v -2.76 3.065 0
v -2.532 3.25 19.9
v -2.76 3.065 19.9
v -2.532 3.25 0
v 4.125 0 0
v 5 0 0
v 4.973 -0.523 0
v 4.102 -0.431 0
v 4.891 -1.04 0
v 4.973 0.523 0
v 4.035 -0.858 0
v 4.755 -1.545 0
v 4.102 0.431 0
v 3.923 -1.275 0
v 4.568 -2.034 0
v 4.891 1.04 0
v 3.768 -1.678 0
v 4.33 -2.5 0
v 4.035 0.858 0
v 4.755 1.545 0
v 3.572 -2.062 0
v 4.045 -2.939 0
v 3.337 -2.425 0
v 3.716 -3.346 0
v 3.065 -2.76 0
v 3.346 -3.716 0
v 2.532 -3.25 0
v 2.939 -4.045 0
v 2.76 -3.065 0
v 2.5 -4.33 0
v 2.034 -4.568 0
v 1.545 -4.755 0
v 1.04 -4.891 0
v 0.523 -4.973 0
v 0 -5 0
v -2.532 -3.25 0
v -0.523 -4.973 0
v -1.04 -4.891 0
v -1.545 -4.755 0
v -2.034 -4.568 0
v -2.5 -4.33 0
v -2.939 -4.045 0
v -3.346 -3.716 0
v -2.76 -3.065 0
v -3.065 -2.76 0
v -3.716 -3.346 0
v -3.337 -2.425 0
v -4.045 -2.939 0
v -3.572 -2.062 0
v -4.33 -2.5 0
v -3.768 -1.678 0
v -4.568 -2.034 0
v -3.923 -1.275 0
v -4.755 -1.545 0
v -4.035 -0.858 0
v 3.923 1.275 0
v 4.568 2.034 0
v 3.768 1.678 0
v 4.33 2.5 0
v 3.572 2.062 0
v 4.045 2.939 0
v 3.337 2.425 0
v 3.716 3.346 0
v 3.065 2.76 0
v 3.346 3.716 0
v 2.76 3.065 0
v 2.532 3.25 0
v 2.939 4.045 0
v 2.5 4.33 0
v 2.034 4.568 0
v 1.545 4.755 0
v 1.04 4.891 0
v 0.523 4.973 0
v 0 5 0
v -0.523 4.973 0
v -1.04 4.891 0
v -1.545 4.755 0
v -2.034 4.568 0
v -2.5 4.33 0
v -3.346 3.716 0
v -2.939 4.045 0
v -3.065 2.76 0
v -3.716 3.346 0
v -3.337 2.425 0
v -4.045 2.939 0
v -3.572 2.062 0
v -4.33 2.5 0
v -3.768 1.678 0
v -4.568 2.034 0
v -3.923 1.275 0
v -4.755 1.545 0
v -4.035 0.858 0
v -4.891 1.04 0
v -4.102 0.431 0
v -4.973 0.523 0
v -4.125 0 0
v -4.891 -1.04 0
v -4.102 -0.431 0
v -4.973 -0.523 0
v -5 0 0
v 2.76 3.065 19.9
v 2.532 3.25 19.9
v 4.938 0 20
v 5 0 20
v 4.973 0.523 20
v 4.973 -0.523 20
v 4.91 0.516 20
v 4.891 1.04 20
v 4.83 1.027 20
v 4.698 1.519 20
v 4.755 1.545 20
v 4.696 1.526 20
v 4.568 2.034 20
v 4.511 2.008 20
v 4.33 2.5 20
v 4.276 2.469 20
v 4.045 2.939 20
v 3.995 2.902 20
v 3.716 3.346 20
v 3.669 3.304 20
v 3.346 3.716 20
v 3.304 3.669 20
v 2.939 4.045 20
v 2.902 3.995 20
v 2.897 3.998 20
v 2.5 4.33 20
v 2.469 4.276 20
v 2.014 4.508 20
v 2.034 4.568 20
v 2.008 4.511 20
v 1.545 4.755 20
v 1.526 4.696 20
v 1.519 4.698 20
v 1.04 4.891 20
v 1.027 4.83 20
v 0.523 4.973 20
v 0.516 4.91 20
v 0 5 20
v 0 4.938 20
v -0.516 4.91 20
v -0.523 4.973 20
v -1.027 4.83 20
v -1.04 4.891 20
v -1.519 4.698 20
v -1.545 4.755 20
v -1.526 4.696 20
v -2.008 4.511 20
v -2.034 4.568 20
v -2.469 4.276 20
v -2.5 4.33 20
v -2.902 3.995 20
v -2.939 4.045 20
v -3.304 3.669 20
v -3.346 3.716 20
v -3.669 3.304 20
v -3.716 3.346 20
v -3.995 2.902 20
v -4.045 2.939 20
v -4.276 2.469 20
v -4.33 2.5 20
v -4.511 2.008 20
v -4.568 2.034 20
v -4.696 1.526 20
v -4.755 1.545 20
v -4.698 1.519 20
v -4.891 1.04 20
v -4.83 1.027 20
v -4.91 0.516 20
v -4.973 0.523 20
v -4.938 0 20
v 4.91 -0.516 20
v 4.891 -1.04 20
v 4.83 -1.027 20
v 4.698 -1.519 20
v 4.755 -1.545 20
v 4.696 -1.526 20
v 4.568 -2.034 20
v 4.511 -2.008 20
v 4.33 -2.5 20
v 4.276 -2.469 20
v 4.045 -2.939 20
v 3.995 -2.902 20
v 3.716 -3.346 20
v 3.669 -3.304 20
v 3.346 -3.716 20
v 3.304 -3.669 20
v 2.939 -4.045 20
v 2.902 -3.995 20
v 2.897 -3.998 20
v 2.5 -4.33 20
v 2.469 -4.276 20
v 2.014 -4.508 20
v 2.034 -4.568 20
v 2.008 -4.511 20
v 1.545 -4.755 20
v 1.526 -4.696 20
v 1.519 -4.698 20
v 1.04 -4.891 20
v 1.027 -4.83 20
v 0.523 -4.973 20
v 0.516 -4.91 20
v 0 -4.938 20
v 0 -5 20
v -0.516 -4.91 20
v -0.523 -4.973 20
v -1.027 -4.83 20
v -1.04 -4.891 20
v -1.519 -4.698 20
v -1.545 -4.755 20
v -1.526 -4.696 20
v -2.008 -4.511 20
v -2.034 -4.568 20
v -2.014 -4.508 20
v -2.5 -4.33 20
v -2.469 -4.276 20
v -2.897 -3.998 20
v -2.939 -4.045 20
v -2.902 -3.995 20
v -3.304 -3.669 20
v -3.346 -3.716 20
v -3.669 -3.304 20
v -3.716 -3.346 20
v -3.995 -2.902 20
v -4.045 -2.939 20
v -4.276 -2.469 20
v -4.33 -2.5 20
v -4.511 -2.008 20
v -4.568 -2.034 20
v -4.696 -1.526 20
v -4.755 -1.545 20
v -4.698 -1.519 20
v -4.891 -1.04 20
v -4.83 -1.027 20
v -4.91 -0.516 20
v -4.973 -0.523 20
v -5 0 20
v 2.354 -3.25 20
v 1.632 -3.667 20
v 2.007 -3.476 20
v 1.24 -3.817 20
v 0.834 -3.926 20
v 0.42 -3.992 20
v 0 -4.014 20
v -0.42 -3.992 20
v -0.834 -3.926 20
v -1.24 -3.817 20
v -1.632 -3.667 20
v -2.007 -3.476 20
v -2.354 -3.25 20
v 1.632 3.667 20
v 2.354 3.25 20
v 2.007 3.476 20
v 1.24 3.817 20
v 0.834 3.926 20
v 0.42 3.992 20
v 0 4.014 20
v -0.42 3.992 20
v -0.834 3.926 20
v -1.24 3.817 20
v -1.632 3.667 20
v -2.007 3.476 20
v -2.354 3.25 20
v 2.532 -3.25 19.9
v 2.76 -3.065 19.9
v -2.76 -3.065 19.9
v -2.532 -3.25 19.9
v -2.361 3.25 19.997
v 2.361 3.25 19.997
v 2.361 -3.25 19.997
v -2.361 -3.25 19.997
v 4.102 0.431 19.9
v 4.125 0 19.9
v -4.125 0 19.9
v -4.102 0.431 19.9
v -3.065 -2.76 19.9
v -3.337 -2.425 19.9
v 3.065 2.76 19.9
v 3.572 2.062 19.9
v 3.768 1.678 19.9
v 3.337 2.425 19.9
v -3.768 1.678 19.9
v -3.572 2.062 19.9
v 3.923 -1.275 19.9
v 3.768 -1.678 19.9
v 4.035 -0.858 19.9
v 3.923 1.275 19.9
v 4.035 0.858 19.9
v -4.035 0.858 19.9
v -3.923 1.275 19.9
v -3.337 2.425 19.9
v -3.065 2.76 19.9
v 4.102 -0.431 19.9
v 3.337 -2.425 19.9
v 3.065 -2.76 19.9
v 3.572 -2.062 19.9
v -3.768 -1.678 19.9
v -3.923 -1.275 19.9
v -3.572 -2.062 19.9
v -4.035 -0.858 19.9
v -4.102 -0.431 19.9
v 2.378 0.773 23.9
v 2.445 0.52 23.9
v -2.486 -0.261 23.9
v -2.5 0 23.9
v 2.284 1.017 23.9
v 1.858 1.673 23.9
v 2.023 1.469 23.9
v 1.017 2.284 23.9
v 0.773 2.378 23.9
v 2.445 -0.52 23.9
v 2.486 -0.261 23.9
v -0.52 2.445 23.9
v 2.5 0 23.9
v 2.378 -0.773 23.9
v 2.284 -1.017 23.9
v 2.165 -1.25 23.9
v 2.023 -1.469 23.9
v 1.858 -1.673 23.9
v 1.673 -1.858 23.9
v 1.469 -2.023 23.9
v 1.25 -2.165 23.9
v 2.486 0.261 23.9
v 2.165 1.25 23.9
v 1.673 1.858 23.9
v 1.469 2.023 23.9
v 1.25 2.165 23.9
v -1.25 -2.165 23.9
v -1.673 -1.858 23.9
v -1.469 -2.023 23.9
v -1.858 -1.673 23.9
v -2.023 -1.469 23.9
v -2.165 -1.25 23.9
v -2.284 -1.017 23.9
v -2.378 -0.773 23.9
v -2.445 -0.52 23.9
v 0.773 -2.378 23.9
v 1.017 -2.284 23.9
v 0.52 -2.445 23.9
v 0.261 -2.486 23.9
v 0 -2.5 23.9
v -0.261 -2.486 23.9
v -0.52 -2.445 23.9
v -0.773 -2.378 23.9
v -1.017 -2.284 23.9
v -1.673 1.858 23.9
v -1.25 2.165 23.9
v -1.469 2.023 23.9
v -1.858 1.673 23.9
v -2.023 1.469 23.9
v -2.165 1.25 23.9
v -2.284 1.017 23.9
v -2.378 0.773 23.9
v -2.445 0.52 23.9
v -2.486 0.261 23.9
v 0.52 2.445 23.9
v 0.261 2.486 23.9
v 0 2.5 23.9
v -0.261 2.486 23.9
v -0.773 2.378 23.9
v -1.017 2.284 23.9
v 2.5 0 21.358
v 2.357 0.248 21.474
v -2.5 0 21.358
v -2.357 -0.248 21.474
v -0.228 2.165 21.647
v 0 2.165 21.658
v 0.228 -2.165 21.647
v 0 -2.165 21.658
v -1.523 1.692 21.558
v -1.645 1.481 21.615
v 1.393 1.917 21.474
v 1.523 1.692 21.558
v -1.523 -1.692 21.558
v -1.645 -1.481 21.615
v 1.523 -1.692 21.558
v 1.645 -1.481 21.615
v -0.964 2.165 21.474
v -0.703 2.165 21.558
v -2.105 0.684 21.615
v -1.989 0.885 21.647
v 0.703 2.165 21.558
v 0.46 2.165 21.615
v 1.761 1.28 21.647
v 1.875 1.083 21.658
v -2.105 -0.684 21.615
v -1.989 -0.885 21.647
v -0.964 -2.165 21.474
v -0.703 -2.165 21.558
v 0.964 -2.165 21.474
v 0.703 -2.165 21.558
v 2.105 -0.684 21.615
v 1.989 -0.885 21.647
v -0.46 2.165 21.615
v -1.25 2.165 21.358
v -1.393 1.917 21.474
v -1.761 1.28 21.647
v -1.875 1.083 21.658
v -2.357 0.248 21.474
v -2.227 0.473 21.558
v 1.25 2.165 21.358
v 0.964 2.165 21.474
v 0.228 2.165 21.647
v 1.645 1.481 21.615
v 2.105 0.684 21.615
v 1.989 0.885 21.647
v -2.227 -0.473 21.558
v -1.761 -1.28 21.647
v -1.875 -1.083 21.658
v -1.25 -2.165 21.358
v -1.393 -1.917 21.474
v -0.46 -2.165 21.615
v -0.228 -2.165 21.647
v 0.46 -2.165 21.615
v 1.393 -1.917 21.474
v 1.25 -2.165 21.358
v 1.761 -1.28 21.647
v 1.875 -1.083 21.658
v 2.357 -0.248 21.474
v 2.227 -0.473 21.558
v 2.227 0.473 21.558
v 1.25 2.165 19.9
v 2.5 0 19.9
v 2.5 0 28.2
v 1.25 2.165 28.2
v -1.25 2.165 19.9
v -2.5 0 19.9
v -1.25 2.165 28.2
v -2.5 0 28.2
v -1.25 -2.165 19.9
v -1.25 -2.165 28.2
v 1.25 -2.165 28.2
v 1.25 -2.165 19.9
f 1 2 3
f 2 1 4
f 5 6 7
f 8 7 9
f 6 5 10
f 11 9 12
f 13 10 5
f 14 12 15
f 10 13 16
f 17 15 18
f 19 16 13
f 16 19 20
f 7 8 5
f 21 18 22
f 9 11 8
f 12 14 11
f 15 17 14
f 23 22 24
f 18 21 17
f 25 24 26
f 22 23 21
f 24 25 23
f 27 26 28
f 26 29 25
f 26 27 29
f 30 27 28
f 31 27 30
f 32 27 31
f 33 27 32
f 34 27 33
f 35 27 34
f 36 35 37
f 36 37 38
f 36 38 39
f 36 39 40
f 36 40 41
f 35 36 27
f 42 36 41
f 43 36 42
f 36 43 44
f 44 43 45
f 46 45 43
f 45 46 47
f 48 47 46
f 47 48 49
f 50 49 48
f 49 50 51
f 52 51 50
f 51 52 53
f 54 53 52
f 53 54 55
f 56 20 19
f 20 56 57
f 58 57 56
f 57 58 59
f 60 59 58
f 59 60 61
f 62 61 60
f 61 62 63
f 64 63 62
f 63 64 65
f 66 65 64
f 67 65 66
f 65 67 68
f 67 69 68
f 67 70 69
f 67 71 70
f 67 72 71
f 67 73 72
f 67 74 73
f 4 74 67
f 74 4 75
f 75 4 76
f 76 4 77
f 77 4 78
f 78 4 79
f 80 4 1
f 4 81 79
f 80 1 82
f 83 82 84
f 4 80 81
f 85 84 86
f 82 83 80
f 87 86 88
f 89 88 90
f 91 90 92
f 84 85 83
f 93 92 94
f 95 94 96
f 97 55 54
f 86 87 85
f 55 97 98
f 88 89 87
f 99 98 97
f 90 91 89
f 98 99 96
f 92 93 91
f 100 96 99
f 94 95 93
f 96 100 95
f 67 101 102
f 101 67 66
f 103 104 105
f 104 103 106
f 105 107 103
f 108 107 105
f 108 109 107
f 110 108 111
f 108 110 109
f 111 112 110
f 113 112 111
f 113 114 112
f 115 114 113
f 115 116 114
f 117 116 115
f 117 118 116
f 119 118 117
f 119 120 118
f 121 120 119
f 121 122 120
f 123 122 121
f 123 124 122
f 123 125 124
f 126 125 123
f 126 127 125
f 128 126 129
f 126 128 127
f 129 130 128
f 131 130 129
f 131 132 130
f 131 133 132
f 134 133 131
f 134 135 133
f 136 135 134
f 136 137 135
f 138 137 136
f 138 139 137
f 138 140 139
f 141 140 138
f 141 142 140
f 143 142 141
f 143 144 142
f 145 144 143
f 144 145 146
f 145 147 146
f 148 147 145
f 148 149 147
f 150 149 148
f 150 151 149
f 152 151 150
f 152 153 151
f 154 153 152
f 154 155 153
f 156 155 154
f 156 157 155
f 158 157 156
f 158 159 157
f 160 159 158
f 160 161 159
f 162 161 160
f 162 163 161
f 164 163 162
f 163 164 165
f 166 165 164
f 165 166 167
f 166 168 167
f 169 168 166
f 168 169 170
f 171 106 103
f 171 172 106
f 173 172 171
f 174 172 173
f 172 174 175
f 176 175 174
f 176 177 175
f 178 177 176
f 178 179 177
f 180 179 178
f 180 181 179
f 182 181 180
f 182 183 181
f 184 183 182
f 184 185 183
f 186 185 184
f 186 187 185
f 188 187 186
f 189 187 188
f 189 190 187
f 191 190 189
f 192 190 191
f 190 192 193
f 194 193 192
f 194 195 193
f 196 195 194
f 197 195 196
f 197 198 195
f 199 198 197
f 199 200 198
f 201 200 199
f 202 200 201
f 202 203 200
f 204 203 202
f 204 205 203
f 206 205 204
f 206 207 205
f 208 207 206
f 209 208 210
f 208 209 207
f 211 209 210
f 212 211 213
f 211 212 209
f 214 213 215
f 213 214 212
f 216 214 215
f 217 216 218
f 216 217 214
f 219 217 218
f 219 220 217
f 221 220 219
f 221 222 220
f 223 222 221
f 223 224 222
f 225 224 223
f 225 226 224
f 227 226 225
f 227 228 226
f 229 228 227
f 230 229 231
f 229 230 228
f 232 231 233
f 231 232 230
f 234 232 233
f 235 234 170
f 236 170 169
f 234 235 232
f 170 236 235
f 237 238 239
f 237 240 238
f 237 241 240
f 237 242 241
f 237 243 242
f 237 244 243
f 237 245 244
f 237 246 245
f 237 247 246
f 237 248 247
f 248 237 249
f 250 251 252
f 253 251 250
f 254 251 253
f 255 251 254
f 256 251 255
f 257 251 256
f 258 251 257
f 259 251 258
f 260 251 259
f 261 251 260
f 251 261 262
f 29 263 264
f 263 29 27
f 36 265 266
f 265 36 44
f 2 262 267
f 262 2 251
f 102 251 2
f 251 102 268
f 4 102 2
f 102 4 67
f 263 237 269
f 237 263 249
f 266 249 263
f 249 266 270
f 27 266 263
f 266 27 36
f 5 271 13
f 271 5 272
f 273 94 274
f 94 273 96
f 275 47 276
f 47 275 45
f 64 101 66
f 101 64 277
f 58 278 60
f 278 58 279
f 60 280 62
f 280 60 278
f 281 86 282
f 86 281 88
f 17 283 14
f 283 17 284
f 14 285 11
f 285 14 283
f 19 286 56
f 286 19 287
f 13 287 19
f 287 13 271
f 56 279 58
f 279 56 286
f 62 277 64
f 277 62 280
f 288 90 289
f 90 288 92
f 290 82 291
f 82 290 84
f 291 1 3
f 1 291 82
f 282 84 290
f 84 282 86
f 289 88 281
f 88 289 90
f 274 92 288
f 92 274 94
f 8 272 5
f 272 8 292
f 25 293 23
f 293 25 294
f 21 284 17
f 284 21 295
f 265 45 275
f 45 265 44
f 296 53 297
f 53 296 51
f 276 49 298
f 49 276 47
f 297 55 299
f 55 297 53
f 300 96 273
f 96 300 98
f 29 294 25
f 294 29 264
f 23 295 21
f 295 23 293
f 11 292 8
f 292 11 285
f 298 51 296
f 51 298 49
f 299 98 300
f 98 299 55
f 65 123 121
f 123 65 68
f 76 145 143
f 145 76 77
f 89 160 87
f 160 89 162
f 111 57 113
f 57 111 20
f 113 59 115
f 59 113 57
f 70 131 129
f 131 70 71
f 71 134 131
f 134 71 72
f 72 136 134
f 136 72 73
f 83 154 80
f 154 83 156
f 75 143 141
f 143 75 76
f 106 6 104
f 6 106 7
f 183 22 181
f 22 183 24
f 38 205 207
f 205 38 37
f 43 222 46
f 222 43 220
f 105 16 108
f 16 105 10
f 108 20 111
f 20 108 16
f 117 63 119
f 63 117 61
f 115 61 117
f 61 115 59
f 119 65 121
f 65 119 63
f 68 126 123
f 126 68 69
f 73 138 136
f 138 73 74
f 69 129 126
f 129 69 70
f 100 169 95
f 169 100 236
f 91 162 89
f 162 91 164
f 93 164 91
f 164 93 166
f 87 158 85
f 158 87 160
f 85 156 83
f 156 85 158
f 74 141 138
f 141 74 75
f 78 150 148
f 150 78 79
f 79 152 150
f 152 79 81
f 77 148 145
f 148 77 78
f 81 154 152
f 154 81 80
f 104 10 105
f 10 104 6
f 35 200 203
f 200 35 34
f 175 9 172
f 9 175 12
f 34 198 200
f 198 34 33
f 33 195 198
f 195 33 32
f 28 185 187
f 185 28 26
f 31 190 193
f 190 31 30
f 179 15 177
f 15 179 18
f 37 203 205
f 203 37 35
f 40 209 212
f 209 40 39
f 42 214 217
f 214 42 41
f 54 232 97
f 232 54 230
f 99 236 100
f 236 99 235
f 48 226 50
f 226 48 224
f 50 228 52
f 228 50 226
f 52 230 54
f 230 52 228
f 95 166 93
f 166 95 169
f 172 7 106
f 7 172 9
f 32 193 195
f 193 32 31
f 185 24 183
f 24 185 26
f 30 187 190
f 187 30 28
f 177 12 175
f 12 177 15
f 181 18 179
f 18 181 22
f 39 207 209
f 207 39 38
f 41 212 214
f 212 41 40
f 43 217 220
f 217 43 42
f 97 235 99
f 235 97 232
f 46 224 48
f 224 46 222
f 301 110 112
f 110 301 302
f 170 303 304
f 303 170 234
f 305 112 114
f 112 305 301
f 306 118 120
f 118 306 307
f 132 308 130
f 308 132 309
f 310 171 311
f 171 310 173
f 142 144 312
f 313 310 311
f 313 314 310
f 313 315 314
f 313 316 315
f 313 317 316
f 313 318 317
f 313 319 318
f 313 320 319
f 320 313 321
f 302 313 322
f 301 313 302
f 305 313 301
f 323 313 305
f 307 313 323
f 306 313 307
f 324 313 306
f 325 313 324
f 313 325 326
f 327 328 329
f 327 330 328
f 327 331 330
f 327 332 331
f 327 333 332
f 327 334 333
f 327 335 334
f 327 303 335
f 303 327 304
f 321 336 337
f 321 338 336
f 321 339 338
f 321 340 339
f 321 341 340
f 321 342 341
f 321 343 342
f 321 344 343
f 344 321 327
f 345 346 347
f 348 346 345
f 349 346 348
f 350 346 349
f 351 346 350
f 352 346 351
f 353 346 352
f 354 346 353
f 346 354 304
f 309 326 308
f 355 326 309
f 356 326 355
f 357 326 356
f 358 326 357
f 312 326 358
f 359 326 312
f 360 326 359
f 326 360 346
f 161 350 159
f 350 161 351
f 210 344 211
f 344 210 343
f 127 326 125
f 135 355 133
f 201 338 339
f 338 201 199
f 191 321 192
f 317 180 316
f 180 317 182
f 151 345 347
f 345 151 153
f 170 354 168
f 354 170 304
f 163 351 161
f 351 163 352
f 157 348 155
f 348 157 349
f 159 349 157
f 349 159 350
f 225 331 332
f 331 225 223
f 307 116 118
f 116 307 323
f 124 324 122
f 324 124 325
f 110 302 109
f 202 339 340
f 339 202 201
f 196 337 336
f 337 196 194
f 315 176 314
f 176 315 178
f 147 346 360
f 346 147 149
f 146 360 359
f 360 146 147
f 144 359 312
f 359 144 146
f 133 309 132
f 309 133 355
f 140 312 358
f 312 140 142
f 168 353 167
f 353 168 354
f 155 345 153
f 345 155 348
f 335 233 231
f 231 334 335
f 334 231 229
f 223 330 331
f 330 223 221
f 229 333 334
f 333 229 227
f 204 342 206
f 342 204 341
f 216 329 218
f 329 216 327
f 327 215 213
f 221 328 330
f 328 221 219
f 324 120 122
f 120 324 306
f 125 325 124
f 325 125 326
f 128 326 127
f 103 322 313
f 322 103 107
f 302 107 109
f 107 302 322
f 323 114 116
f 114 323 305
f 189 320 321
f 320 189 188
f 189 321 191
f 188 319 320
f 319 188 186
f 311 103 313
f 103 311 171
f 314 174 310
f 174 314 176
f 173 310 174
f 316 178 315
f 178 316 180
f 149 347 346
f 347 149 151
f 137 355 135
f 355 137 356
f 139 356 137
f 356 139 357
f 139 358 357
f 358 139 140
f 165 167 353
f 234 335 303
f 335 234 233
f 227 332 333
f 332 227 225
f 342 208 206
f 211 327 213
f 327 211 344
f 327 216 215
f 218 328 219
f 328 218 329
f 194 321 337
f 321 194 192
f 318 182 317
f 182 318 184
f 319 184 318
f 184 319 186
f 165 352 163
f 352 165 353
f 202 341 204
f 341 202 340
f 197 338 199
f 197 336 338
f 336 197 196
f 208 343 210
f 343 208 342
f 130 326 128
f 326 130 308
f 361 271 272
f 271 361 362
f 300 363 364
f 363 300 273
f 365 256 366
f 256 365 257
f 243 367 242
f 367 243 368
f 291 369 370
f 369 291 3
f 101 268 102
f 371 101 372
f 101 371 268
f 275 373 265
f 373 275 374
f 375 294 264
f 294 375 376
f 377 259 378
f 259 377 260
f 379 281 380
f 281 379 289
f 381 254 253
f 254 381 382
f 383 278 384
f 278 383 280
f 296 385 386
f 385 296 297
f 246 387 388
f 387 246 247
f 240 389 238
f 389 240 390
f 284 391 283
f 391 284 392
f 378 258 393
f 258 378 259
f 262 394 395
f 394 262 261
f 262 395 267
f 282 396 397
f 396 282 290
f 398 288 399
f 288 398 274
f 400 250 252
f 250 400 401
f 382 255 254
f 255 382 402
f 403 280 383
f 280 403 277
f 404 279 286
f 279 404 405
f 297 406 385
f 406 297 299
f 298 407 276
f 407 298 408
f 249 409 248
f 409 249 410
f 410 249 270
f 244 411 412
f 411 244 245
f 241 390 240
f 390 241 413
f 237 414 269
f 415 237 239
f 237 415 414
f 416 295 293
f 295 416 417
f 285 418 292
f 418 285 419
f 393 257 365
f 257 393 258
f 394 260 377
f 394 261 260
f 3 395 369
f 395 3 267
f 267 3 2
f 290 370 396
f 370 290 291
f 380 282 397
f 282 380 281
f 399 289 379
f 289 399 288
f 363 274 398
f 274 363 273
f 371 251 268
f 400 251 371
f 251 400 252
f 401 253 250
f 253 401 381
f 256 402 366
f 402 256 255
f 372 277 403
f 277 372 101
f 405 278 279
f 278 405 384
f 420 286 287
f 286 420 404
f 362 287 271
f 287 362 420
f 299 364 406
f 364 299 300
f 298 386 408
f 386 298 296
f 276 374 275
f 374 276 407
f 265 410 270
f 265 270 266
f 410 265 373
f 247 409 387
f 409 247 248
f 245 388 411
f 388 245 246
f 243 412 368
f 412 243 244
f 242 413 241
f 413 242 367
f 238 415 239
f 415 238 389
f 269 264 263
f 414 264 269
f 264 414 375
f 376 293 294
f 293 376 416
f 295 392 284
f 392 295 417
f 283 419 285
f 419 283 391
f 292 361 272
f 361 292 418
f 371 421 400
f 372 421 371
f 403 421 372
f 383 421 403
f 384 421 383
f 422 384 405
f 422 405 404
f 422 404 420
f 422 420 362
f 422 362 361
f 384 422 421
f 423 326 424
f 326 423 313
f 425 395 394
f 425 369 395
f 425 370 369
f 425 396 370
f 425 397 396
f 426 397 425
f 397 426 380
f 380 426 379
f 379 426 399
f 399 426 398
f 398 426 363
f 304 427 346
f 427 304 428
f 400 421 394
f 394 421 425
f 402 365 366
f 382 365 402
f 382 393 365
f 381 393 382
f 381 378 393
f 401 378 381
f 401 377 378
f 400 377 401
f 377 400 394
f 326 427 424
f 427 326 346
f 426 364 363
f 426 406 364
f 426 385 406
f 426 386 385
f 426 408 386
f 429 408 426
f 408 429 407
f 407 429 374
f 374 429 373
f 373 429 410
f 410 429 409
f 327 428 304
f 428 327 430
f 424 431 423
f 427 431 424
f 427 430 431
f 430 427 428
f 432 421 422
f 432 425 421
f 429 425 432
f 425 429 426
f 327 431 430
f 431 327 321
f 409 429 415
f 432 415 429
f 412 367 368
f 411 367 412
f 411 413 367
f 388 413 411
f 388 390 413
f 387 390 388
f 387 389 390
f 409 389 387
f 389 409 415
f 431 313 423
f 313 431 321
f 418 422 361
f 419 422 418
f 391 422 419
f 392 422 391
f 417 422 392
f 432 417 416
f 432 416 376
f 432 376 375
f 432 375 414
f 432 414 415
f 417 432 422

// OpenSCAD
// file: ../library_deh/mag_mount.scad
/* mag_mount.scad

 * ****** Stud magnets ******
16 mm 
http://www.kjmagnetics.com/proddetail.asp?prod=MM-C-16
    Dimensions:
        D=16mm (0.63")
        M=4mm (0.16") (M4 Coarse Male threaded stud)
        H=13mm (0.51")
        h=5mm (0.20")
    Material: NdFeB, Grade N38
    Plating/Coating: Ni-Cu-Ni (Nickel)
    Magnetization Direction: Axial (Poles on Flat Ends)
    Weight: 0.26 oz. (7.37 g)
    Pull Force: 12.1 lbs
    Surface Field: N/A
    Brmax: 12,600 Gauss
    BHmax: 38 MGOe
   $2.49
*/
// Measured dimensions
 mag_thick = 4.82;	    // Magnet thickness (base to shell top)
 mag_shell_dia = 16.0;	    // Magnet shell OD
 mag_shell_flat_dia = 11;   // Dia of flat of magent
 mag_stud_dia = 2.8;        // Dia of mounting magnet studs (4-40)
 mag_stud_len = 8.0;        // Height of stud from magnet back
 mag_washer_thick = 1.1;    // Thickness of washer
 mag_nut_thick = 2.4;       // Stud nut (M3) thickness
 mag_nut_hex_flat = 5.41;   // Nut across flats
 mag_nut_hex_peak = 6.20;   // Nut across peaks (also dia of nut)
 mag_washer_dia = 7.1; // 9.5;      // Diameter of washer for magnet stud
 mag_washer_dia_extra = 2;  // Washer slop

/*
http://www.kjmagnetics.com/proddetail.asp?prod=MM-C-20


    Dimensions:
        D=20mm (0.79")
        M=4mm (0.16") (M4 Coarse Male threaded stud)
        H=15mm (0.59")
        h=7mm (0.28")
    Material: NdFeB, Grade N38
    Plating/Coating: Ni-Cu-Ni (Nickel)
    Magnetization Direction: Axial (Poles on Flat Ends)
    Weight: 0.53 oz. (15.0 g)
    Pull Force: 28.7 lbs
    Surface Field: N/A
    Brmax: 12,600 Gauss
    BHmax: 38 MGOe

  $3.14
*/
 mag20_thick = 7.11;	    // Magnet thickness (base to shell top)
 mag20_shell_dia = 20.2;    // Magnet shell OD
 mag20_stud_dia = 4.53;     // Dia of mounting magnet stud at base
 mag20_stud_len = 7.75;       // Height of stud from magnet back
 mag20_washer_thick = 0.85;    // Thickness of washer
 mag20_nut_thick = 2.93;       // Nut for stud thickness
 mag20_washer_dia = 8.68;      // Diameter of washer for magnet stud
 mag20_washer_dia_extra = 2;  // Washer slop

/*
http://www.kjmagnetics.com/proddetail.asp?prod=MM-C-25

    Dimensions:
        D=25mm (0.98")
        M=5mm (0.20") (M5 Coarse Male threaded stud)
        H=17mm (0.67")
        h=8mm (0.32")
    Material: NdFeB, Grade N38
    Plating/Coating: Ni-Cu-Ni (Nickel)
    Magnetization Direction: Axial (Poles on Flat Ends)
    Weight: 0.92 oz. (26.1 g)
    Pull Force: 48.5 lbs
    Surface Field: N/A
    Brmax: 12,600 Gauss
    BHmax: 38 MGOe
  $4.20
*/
// $$$$$ INCOMPLETE $$$$$$
 mag25_thick = 4.82;	    // Magnet thickness (base to shell top)
 mag25_shell_dia = 16.0;	    // Magnet shell OD
 mag25_stud_dia = 2.8;        // Dia of mounting magnet studs (4-40)
 mag25_stud_len = 7.95;       // Height of stud from magnet back
 mag25_washer_thick = 1.1;    // Thickness of washer
 mag25_nut_thick = 2.4;       // Nut for stud thickness
 mag25_washer_dia = 9.5;      // Diameter of washer for magnet stud
 mag25_washer_dia_extra = 2;  // Washer slop

// Cylindrical magnets
mag_cyl_dia = 6.5; 
mag_cyl_ht = 5.05;
// file: ../library_deh/deh_shapes.scad
/* **** deh_shapes.scad *****
   * Library of useful shapes
   * 20170512
*/


/*  ***** tubedeh *****
d1 = outside diameter
d2 = inside diameter
ht = height
reference is center of tube, bottom
*/
module tubedeh(d1,d2,ht)
{
   difference()
   {
     cylinder(d = d1, h = ht, center = false);
     cylinder(d = d2, h = ht + .001, center = false);
   }
}
/* ***** rounded_bar *****
 * rectangular bar with rounded end
bar with one end rounded
rounded_bar(d, l, h)
d = diameter of rounded end, and width of bar
l = length of bar from center of rounded end to end
h = thickness (height) of bar
reference is center of rounded end, bottom
*/
module rounded_bar(d, l, h)
{
    // Rounded end
    cylinder(d = d, h = h, center = false);
    // Bar
    translate([0, -d/2, 0])
       cube([l, d, h],false);
}
/* ***** eyebar *****
 * rounded bar with hole in rounded end
 * module eye_bar(d1, d2, len, ht)
d1 = outside diameter of rounded end, and width of bar
d2 = diameter of hole in end of bar
*/
module eye_bar(d1, d2, len, ht)
{
   difference()
   {   
      rounded_bar(d1,len,ht);
      cylinder(d = d2, h = ht + .001, center = false);
   }
}
/* ***** rounded_rectangle ******
rounded_rectangle(l,w,h,rad);
l = length (x direction)
w = width (y direction)
h = thickness (z direction)
rad = radius of corners
reference = center of rectangle x,y, bottom
*/
module rounded_rectangle(l,w,h,rad)
{
  translate([-(l-rad)/2,-(w-rad)/2,0])
  {
    // Four rounded edges
    translate([0,0,0])
      rounded_bar(rad*2,l-rad,h);
    translate([l-rad,0,0])
      rotate([0,0,90])
      rounded_bar(rad*2,w-rad,h);
    translate([l-rad,w-rad,0])
      rotate([0,0,180])
      rounded_bar(rad*2,l-rad,h);
    translate([0,w-rad,0])
      rotate([0,0,-90])
      rounded_bar(rad*2,w-rad,h);
    // Fill in center
    translate([0,0,0])
      cube([l-rad + .01,w-rad + .01,h],false);
  }
}

/* ***** rounded rim *****
module rounded_rim(l,w,h,rad,tk);
l = length (inside, x direction)
w = width (inside, y direction)
h = thickness (z direction)
rad = radius of corners
tk = thickness of rim wall
*/
module rounded_rim(l,w,h,rad,tk)
{
  difference()
  {
    rounded_rectangle(l+2*tk,w+2*tk,h,rad);
    rounded_rectangle(l, w, h, rad);
  }
}

/* ***** wedge *****
l = length
w = width
h = height/thickness
*/
 module wedge(l, w, h)
 {
   polyhedron(
      points=[[0,0,0], [l,0,0], [l,w,0], [0,w,0], [0,w,h], [l,w,h]],
       faces=[[0,1,2,3],[5,4,3,2],[0,4,5,1],[0,3,4],[5,2,1]] );
 }
/* ***** rounded_triangle *****
 * l1 = side 1
 * l2 = side 2
 * l3 = side 3
 * h  = height/thickness
 * rad = radius of rounded corners
 */
module rounded_triangle(l1,l2,l3,h,rad)
{
  // Compute rotation angles
  al3 = acos((l1*l1 + l2*l2 - l3*l3)/(2 * l1 * l2));
  al1 = acos((l2*l2 + l3*l3 - l1*l1)/(2 * l2 * l3));
  al2 = acos((l3*l3 + l1*l1 - l2*l2)/(2 * l3 * l1));
  // Setup bars for edges
  translate([0,0,0])
    rotate([0,0,0])
      rounded_bar(rad,l3,h);
  translate([l3,0,0])
    rotate([0,0,180-al2])
      rounded_bar(rad,l1,h);
  rotate([0,0,al1])
    translate([l2,0,0])
      rotate([0,0,180])
        rounded_bar(rad,l2,h);
  // Fill in center
    triangle(l1,l2,l3,h);
}
/* ***** triangle *****
 * l1 = side 1
 * l2 = side 2
 * l3 = side 3
 * h  = height/thickness
 */
module triangle(l1,l2,l3,h)
{
  // Compute rotation angle
  al1 = acos((l2*l2 + l3*l3 - l1*l1)/(2 * l2 * l3));
  
  linear_extrude(height = h)
  polygon(points = [[0,0],[l3,0],[l2*cos(al1),l2*sin(al1)]]);
}
/* ***** chamfered hole *****
 * Punch hole with chamfer on one end
 * d1 = main hole diameter
 * d2 = hole diameter at chamfered end
 * ht1 = height of whole hole
 * ht2 = depth of  chamfer
*/
module chamfered_hole(d1,d2,ht1,ht2)
{
   rotate_extrude(convexity = 10)
     polygon(points = [[0,0],[d1/2,0],[d1/2,ht1-ht2],[d2/2,ht1],[0,ht1]]);

}

/* ***** fillet *****
 * r = radius of fillet
 * l = length of fillet
 fillet (r,l);
*/
module fillet(r,l)
{
   difference()
   {
     union()
     {
       cube([2*r,2*r,l]);
     }
     union()
     {
       translate ([r,r,0])
           cylinder(d = 2*r + 0.1, h = l, center = false);
       translate([r,0,0])
           cube([r,2*r,l],center = false);
       translate([0,r,0])
           cube([2*r,r,l],center = false);
     }
   }
}
/* ***** circular chamfer *****
 * d = outer diameter
 * rad = chamfer radius
 * circular_chamfer(d, rad);
*/
module circular_chamfer(d, rad)
{
  ofs = (d/2 - rad);
  rotate_extrude()
  translate([ofs,0])
   difference()
   {
     union()
     {
       square(size = [rad, rad]);
     }
     union()
     {
       translate ([0,rad ])
           circle(d = 2*rad + 0.1);
     }
   }
}
module circular_inner_chamfer(d, rad)
{
  circular_chamfer(d, rad);
} 

/* ***** circular chamfer *****
 * d = inner diameter
 * rad = chamfer radius
 * circular_chamfer(d, rad);
*/
module circular_outer_chamfer(d, rad)
{
  ofs = (d/2 - rad);
  rotate_extrude()
  translate([ofs,0])
   difference()
   {
     union()
     {
       square(size = [rad, rad]);
     }
     union()
     {
       translate ([rad,rad ])
           circle(d = 2*rad + 0.1);
     }
   }
}
// main file
/* shaft1.scad
 * Coupling for motor to drive shaft--AC motor
 * Date: 20170728
 * #### Be sure to use latest openscad! ####
 * #### or rotate_extrude will not work ####
 */

include <../library_deh/deh_shapes.scad>
include <../library_deh/mag_mount.scad>

$fn = 60;

cp_ht = 20;
cp_id = 8;
cp_od = 10;
cp_ht2 = 8.3;
cp_od2 = 5;//4.6;
cp_ht3 = 4;
flt_x = 6.5;  // distance across flat
flt_d = 8.25;  // dia of shaft

module doubleflat(d,flt,h)
{
    difference()
    {
            cylinder(d=d,h=h,center=false);
       { 
            difference()
            {
                cylinder(d=d,h=h,center=false);
                union()
                {
                    translate([-d/2,-flt/2,0])
                    cube([d,flt,h],center=false);
                
                }
            }
        }
    }
}
module hose()
{
    $fn=6;
    translate([0,0,cp_ht-.1])
        cylinder(d=cp_od2,h=cp_ht2,center=false);
    
    
}

module part()
{
    difference()
    {
        cylinder(d=cp_od,h=cp_ht,center=false);
        doubleflat(flt_d,flt_x,cp_ht);
    }
    translate([0,0,cp_ht-.1])
        difference()
        {
            cylinder(d1=cp_od,           d2=cp_od2,h=cp_ht3,center=false);
            cylinder(d1=flt_d,            d2=  0,       h=cp_ht3-.3,center=false);
        }
        hose();

}
part();
